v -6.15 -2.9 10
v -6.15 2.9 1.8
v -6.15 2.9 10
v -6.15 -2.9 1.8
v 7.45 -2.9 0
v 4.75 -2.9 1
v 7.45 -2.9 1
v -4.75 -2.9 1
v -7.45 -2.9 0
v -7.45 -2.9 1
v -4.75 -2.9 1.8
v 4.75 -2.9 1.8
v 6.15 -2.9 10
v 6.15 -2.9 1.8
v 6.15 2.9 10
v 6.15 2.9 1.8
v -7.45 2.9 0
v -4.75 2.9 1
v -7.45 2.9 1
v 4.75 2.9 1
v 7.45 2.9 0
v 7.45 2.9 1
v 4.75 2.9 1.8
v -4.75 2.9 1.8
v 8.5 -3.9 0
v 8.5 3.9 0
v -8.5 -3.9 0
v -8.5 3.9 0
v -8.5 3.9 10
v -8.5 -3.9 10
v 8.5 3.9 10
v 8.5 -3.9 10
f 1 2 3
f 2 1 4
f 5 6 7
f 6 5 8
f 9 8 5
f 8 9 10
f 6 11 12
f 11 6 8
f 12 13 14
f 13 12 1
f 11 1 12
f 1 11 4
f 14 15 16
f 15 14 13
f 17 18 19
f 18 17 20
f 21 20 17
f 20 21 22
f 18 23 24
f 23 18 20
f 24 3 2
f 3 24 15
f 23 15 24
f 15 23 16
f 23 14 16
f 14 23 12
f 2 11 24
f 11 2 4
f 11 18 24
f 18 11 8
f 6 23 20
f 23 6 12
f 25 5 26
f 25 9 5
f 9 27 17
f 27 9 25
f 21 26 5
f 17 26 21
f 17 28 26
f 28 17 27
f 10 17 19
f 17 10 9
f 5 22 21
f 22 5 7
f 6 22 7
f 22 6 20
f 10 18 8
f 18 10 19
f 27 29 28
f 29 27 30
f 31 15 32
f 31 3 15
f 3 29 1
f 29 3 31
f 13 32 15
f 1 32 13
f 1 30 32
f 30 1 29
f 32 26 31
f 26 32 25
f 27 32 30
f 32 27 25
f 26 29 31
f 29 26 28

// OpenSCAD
// change if click-mechanism does not fit or is too loose
socket_height = 5.8;

example_socket();

module click_socket() {
    depth = 15;
    holding_plate = 14.9;
    holder_thickness = 0.8;
    inner_chamber = 12.3;
    inlay = 1;
    hook_depth = 1.4;
    rotate([90,0,0]){
        translate([-holding_plate / 2, 0, -socket_height/2]){
            translate([holding_plate/2 - inner_chamber/2,holder_thickness + inlay,0]) {
                cube([inner_chamber,depth,socket_height]);
            }
            inside_width = inner_chamber - hook_depth * 2;
            translate([(holding_plate - inside_width) / 2,0,0]) {
                cube([inside_width, inlay + holder_thickness,socket_height]);
            }
            cube([holding_plate,inlay,socket_height]);
        }
    }
}

module example_socket() {
    example_height = 10;
    difference() {
        translate([0,0,example_height/2]) {
            cube([17,socket_height + 2, example_height], center=true);
        }
        click_socket();
    }
}
